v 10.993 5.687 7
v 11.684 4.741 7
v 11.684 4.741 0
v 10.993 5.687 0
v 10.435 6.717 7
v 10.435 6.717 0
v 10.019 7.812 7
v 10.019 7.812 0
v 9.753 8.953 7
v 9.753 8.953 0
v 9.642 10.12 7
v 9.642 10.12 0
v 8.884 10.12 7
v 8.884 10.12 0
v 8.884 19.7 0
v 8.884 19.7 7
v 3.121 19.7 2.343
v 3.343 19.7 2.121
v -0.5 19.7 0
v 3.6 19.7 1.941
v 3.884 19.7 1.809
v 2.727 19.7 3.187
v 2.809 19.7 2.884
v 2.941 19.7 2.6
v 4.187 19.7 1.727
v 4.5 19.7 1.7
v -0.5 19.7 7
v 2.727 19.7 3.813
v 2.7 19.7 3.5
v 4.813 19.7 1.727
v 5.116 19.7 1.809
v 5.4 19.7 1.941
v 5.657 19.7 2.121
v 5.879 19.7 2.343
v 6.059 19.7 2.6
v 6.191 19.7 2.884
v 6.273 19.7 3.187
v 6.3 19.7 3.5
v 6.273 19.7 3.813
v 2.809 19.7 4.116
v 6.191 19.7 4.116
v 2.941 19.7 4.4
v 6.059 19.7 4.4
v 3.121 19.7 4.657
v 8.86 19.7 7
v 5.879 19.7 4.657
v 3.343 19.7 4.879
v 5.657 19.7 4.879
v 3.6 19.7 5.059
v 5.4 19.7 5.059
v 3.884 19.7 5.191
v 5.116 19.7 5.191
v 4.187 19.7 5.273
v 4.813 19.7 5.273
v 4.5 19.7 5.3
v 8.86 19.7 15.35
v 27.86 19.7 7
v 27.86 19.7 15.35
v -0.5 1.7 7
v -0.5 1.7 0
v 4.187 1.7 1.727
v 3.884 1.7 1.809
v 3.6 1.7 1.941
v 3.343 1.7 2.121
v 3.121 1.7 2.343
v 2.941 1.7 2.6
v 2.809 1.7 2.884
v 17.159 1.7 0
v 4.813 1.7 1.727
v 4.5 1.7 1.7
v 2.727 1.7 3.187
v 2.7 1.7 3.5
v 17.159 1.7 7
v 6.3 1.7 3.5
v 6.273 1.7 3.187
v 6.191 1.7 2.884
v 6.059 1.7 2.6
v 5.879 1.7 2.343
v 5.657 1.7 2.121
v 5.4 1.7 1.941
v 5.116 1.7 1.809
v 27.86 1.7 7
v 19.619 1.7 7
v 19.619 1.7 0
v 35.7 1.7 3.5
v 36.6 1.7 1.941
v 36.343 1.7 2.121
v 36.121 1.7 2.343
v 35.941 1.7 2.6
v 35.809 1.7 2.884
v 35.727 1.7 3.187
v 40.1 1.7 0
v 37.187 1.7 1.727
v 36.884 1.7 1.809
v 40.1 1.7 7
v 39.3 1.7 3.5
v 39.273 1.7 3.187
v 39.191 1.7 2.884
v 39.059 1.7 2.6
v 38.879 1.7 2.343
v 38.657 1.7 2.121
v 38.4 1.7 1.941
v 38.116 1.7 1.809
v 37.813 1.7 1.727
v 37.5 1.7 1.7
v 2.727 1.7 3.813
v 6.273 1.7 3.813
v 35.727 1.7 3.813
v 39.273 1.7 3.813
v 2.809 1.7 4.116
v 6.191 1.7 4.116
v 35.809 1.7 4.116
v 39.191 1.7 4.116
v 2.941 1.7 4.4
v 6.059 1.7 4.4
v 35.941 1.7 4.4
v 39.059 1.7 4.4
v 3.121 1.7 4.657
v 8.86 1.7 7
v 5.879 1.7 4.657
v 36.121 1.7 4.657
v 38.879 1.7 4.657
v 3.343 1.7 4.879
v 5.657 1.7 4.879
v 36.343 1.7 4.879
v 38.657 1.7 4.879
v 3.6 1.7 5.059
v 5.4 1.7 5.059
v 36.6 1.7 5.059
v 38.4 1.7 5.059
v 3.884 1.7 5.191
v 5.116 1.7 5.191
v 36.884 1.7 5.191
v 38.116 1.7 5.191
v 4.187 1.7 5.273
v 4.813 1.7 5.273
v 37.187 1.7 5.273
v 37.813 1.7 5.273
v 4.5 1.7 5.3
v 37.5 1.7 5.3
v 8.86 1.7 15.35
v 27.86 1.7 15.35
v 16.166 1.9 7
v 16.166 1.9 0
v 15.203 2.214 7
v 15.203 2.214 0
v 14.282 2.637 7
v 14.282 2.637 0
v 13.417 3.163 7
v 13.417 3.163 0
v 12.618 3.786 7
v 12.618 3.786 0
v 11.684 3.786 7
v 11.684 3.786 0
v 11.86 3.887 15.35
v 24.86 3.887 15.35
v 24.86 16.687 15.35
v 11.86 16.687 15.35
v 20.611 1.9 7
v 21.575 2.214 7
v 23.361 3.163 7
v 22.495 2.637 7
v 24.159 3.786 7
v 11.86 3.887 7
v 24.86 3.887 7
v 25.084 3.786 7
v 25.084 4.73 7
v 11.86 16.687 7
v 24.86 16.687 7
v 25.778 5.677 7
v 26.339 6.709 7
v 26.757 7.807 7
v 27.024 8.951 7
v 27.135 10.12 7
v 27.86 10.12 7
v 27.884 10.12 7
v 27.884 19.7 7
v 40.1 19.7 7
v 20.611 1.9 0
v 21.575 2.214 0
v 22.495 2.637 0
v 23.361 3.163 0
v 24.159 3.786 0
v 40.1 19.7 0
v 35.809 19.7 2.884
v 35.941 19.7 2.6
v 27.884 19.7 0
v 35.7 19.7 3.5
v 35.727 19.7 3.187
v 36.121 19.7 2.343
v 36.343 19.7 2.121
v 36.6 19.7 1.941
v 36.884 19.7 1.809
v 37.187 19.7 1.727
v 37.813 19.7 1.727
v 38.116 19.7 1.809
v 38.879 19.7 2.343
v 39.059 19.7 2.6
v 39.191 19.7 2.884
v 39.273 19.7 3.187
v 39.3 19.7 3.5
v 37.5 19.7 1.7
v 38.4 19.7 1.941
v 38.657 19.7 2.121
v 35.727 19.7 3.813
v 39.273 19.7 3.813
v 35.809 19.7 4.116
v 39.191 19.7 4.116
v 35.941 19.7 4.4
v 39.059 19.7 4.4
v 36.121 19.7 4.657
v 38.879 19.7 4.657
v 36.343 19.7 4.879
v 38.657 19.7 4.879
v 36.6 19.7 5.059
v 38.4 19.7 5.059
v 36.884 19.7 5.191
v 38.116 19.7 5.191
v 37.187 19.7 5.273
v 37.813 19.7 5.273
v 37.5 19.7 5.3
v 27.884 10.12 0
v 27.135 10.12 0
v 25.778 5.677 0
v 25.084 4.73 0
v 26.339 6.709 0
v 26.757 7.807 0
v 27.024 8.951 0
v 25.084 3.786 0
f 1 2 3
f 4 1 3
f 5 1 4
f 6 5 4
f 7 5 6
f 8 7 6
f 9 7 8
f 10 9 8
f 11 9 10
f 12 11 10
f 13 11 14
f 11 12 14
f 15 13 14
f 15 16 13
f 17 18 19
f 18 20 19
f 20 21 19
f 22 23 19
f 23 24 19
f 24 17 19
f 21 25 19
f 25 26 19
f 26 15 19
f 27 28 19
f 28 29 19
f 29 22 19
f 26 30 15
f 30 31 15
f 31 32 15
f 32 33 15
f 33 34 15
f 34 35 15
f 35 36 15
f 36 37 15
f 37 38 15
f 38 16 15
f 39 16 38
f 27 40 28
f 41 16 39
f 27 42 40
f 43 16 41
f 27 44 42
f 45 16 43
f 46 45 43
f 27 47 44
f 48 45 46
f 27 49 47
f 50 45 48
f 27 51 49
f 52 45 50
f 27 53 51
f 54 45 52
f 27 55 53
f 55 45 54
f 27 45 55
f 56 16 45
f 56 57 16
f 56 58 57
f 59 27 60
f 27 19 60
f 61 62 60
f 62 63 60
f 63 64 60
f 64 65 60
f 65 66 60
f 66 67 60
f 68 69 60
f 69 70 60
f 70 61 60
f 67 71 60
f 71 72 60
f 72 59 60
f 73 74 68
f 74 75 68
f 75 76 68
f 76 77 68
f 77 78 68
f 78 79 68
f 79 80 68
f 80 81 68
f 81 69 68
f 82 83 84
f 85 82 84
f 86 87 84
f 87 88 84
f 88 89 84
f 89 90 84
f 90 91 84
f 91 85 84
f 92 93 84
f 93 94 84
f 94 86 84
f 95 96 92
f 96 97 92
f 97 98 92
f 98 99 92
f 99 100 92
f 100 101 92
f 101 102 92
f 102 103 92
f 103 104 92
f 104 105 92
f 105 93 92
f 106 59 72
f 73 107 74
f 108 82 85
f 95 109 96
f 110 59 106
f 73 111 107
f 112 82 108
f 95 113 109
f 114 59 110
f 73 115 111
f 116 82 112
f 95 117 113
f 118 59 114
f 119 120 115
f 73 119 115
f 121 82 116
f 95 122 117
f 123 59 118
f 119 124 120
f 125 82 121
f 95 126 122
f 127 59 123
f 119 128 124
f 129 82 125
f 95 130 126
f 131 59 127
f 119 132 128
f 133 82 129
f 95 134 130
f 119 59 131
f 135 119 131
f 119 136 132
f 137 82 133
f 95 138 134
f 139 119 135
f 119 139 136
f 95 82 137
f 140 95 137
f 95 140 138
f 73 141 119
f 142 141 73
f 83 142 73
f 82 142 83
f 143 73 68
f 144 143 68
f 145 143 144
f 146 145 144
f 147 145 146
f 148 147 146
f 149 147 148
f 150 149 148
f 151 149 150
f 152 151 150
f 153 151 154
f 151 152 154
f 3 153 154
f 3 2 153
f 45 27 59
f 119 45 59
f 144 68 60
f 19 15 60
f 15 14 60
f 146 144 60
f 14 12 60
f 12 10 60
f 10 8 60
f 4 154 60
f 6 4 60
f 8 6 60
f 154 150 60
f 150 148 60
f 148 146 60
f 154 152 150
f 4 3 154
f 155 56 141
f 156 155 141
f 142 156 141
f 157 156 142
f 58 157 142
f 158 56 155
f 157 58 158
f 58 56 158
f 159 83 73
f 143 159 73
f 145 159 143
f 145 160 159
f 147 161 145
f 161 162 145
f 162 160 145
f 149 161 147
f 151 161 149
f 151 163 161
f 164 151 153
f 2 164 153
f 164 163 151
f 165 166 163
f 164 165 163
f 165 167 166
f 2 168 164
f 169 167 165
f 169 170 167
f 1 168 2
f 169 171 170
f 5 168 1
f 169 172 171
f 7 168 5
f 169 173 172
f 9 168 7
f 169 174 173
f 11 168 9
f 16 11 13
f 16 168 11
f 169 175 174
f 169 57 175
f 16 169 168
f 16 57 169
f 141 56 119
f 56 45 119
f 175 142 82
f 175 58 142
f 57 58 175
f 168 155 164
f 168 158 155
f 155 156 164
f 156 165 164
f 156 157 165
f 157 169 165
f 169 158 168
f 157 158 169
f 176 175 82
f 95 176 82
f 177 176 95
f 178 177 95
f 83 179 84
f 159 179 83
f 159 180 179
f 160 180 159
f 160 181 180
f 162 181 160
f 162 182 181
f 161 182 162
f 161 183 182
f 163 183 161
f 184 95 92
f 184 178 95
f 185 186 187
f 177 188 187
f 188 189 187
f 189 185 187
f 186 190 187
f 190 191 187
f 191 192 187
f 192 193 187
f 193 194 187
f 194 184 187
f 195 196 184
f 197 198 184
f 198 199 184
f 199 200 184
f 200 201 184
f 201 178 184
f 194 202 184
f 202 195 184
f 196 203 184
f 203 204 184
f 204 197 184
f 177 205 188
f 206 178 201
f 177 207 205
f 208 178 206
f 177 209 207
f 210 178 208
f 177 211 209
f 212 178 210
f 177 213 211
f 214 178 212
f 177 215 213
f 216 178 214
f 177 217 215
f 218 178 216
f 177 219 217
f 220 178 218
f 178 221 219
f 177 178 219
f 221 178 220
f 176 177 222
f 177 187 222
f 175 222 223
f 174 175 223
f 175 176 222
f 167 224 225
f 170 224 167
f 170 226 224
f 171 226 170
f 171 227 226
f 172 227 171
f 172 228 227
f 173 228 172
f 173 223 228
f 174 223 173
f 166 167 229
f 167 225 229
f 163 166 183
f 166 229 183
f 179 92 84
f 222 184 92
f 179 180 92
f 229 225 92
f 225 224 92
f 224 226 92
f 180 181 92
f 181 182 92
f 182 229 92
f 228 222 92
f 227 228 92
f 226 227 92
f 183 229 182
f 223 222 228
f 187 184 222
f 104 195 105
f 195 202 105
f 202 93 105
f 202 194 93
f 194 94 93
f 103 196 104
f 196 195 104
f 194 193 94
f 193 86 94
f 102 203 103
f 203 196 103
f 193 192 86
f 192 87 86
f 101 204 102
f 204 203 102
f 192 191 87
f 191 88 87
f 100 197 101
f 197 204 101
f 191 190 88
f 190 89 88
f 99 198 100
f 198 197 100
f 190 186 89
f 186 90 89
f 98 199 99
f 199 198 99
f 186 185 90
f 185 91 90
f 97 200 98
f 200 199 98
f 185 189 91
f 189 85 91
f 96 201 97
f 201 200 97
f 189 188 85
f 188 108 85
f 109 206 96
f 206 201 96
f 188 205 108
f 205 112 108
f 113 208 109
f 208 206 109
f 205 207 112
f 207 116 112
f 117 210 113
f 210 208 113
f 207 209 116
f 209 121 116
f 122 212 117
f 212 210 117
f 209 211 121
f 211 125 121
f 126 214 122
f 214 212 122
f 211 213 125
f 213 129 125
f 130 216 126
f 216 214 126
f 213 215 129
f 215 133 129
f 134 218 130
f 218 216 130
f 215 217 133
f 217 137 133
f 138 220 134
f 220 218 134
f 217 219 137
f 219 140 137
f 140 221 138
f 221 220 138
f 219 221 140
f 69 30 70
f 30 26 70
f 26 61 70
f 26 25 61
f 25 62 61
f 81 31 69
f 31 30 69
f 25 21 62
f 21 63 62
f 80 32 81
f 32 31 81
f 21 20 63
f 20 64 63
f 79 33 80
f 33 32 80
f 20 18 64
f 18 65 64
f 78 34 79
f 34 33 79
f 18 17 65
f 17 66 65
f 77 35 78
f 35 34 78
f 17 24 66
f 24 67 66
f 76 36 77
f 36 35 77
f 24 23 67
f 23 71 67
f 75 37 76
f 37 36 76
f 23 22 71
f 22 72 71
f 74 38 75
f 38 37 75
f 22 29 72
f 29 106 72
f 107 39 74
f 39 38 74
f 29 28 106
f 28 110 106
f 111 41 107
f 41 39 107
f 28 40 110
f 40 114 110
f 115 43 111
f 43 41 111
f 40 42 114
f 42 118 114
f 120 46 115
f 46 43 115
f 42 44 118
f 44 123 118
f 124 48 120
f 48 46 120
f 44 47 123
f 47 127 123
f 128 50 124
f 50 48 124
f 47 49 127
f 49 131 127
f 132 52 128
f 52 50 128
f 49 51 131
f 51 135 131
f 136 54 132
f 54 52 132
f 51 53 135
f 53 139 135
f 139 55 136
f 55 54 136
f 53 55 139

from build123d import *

# Parameters (mm, degrees)
BOSS_EXTRUDE1_DEPTH   = 7
BOSS_EXTRUDE1_2_DEPTH = 7
SKETCH2_W             = 19.000397442
SKETCH2_H             = 18
SKETCH2_W_2           = 13
SKETCH2_H_2           = 12.8
BOSS_EXTRUDE2_DEPTH   = 8.35
SKETCH3_R             = 1.8
CUT_EXTRUDE1_DEPTH    = 47.557840371


with BuildPart() as part:
    # Sketch1 → Boss-Extrude1 (new body)
    with BuildSketch(Plane.XY):
        with BuildLine():
            Line((-0.5, 19.7), (-0.5, 1.7))
            Line((-0.5, 1.7), (17.158948763, 1.7))
            ThreePointArc((17.158948763, 1.7), (14.736483801, 2.411824757), (12.618126572, 3.785721996))
            Line((12.618126572, 3.785721996), (11.684321255, 3.785721996))
            Line((11.684321255, 3.785721996), (11.684321255, 4.740579311))
            ThreePointArc((11.684321255, 4.740579311), (10.208452966, 7.257442509), (9.642129796, 10.119620985))
            Line((9.642129796, 10.119620985), (8.884321255, 10.119620985))
            Line((8.884321255, 10.119620985), (8.884321255, 19.7))
            Line((8.884321255, 19.7), (-0.5, 19.7))
        make_face()
    extrude(amount=BOSS_EXTRUDE1_DEPTH)



with BuildPart() as body_2:
    # Sketch1 → Boss-Extrude1 2 (new body)
    with BuildSketch(Plane.XY):
        with BuildLine():
            ThreePointArc((24.159354013, 3.785721996), (22.040996783, 2.411824757), (19.618531821, 1.7))
            Line((19.618531821, 1.7), (40.1, 1.7))
            Line((40.1, 1.7), (40.1, 19.7))
            Line((40.1, 19.7), (27.884321255, 19.7))
            Line((27.884321255, 19.7), (27.884321255, 10.119620985))
            Line((27.884321255, 10.119620985), (27.135350788, 10.119620985))
            ThreePointArc((27.135350788, 10.119620985), (26.566586462, 7.25102021), (25.084321255, 4.730057473))
            Line((25.084321255, 4.730057473), (25.084321255, 3.785721996))
            Line((25.084321255, 3.785721996), (24.159354013, 3.785721996))
        make_face()
    extrude(amount=BOSS_EXTRUDE1_2_DEPTH)


with BuildPart() as part_1:
    add(part.part)

    add(body_2.part)  # Boss-Extrude2 merges body 2
    # Sketch2 → Boss-Extrude2 (add)
    with BuildSketch(Plane.XY.offset(7)):
        with Locations((18.360198721, 10.7)):
            Rectangle(SKETCH2_W, SKETCH2_H)
        with Locations((18.360397442, 10.287463183)):
            Rectangle(SKETCH2_W_2, SKETCH2_H_2, mode=Mode.SUBTRACT)
    extrude(amount=BOSS_EXTRUDE2_DEPTH)

    # Sketch3 → Cut-Extrude1 (cut, through all)
    with BuildSketch(Plane(origin=(0, 19.7, 0), x_dir=(1, 0, 0), z_dir=(0, 1, 0))):
        with Locations(Location((4.5, -3.5, 0), (0, 0, 270))):
            Circle(SKETCH3_R)
        with Locations(Location((37.5, -3.5, 0), (0, 0, 270))):
            Circle(SKETCH3_R)
    extrude(amount=-CUT_EXTRUDE1_DEPTH, mode=Mode.SUBTRACT)


solid = part_1.part
